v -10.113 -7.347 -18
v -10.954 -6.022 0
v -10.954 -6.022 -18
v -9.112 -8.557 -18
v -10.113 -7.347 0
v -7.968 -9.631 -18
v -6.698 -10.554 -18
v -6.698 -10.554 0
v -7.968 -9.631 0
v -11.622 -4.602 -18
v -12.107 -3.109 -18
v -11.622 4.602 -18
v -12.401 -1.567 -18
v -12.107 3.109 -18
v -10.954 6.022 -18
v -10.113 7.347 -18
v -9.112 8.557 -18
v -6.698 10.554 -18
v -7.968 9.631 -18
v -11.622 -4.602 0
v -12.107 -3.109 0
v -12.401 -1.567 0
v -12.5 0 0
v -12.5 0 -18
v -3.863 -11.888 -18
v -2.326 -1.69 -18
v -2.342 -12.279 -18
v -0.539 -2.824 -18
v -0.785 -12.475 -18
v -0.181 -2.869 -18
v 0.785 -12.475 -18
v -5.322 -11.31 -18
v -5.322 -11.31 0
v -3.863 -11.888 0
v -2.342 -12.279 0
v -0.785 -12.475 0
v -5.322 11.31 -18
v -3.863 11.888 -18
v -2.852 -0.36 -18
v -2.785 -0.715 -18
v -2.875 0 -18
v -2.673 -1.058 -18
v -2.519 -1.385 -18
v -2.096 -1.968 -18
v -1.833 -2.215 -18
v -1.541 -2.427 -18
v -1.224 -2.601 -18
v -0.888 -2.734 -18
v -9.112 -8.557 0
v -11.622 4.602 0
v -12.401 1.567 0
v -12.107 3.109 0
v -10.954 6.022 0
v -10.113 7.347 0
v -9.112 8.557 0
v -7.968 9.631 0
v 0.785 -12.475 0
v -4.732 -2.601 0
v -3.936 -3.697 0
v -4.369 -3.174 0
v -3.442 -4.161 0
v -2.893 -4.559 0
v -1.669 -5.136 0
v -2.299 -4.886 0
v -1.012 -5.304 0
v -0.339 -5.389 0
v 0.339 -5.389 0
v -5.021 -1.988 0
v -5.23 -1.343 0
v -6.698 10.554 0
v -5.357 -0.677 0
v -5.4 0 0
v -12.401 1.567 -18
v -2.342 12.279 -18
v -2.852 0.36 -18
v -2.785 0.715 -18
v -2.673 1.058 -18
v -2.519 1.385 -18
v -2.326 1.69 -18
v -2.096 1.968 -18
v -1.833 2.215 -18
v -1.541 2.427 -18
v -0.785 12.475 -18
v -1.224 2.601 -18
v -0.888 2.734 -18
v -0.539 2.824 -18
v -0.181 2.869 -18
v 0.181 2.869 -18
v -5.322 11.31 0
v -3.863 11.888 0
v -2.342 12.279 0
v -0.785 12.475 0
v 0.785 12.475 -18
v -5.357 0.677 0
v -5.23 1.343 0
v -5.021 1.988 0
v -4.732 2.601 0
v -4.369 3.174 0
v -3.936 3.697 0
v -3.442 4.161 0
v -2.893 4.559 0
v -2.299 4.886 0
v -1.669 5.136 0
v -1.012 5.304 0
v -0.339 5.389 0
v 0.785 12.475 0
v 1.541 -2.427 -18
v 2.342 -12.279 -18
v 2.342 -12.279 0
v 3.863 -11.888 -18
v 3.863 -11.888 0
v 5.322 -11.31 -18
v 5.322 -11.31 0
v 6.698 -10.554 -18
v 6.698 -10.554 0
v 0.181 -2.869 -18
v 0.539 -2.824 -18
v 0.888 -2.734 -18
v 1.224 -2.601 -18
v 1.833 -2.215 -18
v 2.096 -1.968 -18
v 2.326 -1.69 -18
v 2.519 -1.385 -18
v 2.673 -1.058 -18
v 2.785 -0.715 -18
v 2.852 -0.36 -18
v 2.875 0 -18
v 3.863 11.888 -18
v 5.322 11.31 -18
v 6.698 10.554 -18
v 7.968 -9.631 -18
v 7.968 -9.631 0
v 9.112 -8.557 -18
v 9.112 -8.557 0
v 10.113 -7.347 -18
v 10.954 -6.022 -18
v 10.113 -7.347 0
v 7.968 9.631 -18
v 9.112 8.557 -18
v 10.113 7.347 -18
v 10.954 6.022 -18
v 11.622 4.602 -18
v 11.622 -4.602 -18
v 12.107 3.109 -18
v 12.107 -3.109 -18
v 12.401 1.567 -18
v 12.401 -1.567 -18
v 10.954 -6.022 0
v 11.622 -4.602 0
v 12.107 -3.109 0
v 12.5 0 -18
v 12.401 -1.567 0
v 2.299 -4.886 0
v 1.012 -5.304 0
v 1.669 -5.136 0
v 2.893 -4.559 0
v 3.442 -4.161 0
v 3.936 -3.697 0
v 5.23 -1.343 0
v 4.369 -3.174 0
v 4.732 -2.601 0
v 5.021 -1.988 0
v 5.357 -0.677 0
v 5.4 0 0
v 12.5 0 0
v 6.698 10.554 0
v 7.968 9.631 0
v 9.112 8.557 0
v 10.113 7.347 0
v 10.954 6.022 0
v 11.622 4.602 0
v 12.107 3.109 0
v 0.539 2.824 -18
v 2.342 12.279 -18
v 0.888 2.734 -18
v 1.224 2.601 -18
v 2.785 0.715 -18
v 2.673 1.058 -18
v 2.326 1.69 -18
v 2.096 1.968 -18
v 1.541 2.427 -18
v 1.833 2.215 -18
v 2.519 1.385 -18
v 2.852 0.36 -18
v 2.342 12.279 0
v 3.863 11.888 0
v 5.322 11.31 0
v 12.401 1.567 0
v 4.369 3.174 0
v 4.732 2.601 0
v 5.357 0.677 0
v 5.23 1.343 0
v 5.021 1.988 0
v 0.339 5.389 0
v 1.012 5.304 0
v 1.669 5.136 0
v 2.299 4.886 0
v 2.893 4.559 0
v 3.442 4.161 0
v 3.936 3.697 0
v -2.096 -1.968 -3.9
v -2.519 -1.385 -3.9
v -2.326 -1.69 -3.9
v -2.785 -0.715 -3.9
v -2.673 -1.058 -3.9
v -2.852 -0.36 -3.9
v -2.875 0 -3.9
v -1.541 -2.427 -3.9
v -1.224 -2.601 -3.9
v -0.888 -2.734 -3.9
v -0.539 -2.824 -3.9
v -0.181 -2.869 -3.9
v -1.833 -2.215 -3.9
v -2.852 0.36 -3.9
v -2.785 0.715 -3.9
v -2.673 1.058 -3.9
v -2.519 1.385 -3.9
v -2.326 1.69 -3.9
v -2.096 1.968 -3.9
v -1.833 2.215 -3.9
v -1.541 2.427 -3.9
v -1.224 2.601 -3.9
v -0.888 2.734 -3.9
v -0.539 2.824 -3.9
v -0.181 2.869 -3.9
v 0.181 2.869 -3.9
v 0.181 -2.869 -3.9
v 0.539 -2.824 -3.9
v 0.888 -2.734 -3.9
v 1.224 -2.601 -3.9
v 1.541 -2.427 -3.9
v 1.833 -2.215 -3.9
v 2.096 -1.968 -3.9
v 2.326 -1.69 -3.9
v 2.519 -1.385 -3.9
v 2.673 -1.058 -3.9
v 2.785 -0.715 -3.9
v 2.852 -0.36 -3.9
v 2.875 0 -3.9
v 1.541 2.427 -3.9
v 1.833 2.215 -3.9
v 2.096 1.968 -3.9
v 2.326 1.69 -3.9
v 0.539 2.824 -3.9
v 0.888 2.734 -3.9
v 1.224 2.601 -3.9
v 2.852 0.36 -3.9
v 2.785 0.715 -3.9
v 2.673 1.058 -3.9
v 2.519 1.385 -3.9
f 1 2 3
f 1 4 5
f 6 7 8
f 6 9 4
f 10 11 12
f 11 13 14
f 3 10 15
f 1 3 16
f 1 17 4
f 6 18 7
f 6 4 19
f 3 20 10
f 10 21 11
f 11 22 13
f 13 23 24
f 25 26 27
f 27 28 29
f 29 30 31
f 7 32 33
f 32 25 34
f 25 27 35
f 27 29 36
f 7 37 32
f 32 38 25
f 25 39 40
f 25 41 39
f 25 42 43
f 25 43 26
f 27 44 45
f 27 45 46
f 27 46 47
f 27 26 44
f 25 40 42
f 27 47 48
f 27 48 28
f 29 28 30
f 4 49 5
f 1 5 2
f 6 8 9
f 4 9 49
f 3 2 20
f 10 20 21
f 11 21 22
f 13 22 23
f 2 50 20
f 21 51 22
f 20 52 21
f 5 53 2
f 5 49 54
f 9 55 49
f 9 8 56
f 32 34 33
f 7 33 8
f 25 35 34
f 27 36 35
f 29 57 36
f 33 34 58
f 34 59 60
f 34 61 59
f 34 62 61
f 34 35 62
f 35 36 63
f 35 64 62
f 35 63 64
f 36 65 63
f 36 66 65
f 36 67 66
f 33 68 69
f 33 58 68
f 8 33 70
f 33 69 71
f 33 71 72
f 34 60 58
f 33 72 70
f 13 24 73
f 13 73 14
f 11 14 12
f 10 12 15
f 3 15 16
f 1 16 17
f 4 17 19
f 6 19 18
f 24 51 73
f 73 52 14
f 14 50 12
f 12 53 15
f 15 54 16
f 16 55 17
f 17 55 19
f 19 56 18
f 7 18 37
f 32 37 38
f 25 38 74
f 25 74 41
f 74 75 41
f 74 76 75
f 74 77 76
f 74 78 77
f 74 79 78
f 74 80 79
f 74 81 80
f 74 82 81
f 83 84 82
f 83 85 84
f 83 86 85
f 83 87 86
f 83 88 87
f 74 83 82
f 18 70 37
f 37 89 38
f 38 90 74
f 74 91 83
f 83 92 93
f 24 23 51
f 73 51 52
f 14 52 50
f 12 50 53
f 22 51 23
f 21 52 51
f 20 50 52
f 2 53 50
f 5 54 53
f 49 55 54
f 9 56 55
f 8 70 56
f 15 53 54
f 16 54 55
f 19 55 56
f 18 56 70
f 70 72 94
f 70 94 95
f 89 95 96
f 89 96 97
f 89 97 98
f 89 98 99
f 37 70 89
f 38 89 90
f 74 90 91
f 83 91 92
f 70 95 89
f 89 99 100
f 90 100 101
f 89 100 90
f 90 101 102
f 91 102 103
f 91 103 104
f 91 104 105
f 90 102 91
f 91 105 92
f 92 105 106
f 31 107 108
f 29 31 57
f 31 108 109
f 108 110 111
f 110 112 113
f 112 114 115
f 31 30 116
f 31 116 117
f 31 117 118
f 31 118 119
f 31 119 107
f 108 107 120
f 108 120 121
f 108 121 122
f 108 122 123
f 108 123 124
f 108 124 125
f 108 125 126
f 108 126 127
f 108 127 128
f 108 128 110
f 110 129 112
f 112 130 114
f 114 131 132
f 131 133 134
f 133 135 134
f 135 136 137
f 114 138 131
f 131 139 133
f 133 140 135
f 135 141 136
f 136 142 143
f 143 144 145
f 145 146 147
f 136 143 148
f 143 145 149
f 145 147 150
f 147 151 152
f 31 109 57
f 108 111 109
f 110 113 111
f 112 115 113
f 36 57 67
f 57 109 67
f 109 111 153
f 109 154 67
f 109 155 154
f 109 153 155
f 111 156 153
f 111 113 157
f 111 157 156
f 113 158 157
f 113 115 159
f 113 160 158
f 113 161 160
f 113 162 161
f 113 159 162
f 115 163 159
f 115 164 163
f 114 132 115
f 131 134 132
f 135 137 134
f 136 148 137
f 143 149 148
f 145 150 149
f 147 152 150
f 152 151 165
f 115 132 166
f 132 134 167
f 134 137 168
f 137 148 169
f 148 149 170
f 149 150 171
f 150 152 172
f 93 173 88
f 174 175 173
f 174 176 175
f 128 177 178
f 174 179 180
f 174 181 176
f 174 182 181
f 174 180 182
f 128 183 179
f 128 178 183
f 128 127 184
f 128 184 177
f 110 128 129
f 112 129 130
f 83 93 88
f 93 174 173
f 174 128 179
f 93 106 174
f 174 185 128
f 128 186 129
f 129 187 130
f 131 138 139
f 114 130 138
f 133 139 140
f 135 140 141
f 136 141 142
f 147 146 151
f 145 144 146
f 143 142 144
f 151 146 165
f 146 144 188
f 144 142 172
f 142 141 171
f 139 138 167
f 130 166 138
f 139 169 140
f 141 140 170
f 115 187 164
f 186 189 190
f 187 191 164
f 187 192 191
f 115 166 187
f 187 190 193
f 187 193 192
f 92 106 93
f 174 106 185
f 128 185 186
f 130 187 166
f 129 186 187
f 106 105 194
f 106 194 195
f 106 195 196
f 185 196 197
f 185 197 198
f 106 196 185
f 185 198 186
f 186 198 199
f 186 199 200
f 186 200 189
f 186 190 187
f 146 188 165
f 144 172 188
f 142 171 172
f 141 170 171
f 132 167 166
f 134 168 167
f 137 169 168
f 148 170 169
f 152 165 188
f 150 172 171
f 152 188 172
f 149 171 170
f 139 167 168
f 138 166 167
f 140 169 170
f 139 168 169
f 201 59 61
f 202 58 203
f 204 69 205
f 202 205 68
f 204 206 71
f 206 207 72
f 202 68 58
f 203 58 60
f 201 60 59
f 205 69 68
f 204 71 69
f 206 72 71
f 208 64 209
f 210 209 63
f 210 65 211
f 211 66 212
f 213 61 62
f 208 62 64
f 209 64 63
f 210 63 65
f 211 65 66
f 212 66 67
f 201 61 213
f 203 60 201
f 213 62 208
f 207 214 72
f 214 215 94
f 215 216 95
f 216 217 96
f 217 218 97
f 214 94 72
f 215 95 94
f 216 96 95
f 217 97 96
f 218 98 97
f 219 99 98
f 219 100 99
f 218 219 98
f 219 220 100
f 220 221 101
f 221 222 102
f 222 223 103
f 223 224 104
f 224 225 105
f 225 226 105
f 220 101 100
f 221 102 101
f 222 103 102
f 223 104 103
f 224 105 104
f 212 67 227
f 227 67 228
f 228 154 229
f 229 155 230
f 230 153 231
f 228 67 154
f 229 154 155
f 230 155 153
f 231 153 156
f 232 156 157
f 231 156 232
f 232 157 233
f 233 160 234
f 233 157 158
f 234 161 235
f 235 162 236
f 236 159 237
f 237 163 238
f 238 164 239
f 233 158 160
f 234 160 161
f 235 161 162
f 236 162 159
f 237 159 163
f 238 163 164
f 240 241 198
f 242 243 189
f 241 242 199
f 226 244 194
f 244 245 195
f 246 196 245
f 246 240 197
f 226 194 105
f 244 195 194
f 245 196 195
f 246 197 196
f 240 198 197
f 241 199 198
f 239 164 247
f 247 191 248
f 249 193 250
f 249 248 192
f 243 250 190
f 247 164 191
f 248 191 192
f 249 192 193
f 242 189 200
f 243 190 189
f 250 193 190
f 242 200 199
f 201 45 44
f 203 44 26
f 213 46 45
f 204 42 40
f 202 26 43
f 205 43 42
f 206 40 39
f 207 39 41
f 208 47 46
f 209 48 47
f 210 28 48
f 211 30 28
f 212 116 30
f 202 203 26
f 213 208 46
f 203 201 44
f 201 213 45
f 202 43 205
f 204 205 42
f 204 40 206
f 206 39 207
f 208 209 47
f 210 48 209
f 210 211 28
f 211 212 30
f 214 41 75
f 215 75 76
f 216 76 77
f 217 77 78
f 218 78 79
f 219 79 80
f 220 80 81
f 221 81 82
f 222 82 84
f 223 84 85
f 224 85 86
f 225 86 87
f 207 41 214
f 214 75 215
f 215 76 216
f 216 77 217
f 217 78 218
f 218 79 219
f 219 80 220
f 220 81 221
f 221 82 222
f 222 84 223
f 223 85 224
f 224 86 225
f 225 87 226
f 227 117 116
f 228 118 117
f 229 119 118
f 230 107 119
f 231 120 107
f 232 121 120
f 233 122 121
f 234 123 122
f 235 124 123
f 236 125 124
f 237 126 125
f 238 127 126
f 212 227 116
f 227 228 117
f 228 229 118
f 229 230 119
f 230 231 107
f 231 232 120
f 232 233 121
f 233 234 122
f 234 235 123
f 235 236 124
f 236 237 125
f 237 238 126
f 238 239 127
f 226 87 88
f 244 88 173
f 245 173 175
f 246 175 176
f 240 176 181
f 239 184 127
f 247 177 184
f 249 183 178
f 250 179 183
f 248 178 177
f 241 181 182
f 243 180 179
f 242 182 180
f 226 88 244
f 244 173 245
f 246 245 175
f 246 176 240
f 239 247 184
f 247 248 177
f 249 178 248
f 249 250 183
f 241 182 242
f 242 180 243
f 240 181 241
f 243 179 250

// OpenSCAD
$fn = 50;


difference() {
	union() {
		translate(v = [0, 0, -18.0000000000]) {
			cylinder(h = 18, r = 12.5000000000);
		}
		#translate(v = [0, 0, -21.0000000000]) {
			cylinder(h = 21, r = 2.8750000000);
		}
	}
	union() {
		translate(v = [0, 0, 0]) {
			rotate(a = [0, 0, 0]) {
				difference() {
					union() {
						translate(v = [0, 0, -21.0000000000]) {
							cylinder(h = 21, r = 2.6000000000);
						}
						translate(v = [0, 0, -3.9000000000]) {
							cylinder(h = 3.9000000000, r1 = 2.8750000000, r2 = 5.4000000000);
						}
						translate(v = [0, 0, -21.0000000000]) {
							cylinder(h = 21, r = 2.8750000000);
						}
						translate(v = [0, 0, -21.0000000000]) {
							cylinder(h = 21, r = 2.6000000000);
						}
					}
					union();
				}
			}
		}
	}
}
